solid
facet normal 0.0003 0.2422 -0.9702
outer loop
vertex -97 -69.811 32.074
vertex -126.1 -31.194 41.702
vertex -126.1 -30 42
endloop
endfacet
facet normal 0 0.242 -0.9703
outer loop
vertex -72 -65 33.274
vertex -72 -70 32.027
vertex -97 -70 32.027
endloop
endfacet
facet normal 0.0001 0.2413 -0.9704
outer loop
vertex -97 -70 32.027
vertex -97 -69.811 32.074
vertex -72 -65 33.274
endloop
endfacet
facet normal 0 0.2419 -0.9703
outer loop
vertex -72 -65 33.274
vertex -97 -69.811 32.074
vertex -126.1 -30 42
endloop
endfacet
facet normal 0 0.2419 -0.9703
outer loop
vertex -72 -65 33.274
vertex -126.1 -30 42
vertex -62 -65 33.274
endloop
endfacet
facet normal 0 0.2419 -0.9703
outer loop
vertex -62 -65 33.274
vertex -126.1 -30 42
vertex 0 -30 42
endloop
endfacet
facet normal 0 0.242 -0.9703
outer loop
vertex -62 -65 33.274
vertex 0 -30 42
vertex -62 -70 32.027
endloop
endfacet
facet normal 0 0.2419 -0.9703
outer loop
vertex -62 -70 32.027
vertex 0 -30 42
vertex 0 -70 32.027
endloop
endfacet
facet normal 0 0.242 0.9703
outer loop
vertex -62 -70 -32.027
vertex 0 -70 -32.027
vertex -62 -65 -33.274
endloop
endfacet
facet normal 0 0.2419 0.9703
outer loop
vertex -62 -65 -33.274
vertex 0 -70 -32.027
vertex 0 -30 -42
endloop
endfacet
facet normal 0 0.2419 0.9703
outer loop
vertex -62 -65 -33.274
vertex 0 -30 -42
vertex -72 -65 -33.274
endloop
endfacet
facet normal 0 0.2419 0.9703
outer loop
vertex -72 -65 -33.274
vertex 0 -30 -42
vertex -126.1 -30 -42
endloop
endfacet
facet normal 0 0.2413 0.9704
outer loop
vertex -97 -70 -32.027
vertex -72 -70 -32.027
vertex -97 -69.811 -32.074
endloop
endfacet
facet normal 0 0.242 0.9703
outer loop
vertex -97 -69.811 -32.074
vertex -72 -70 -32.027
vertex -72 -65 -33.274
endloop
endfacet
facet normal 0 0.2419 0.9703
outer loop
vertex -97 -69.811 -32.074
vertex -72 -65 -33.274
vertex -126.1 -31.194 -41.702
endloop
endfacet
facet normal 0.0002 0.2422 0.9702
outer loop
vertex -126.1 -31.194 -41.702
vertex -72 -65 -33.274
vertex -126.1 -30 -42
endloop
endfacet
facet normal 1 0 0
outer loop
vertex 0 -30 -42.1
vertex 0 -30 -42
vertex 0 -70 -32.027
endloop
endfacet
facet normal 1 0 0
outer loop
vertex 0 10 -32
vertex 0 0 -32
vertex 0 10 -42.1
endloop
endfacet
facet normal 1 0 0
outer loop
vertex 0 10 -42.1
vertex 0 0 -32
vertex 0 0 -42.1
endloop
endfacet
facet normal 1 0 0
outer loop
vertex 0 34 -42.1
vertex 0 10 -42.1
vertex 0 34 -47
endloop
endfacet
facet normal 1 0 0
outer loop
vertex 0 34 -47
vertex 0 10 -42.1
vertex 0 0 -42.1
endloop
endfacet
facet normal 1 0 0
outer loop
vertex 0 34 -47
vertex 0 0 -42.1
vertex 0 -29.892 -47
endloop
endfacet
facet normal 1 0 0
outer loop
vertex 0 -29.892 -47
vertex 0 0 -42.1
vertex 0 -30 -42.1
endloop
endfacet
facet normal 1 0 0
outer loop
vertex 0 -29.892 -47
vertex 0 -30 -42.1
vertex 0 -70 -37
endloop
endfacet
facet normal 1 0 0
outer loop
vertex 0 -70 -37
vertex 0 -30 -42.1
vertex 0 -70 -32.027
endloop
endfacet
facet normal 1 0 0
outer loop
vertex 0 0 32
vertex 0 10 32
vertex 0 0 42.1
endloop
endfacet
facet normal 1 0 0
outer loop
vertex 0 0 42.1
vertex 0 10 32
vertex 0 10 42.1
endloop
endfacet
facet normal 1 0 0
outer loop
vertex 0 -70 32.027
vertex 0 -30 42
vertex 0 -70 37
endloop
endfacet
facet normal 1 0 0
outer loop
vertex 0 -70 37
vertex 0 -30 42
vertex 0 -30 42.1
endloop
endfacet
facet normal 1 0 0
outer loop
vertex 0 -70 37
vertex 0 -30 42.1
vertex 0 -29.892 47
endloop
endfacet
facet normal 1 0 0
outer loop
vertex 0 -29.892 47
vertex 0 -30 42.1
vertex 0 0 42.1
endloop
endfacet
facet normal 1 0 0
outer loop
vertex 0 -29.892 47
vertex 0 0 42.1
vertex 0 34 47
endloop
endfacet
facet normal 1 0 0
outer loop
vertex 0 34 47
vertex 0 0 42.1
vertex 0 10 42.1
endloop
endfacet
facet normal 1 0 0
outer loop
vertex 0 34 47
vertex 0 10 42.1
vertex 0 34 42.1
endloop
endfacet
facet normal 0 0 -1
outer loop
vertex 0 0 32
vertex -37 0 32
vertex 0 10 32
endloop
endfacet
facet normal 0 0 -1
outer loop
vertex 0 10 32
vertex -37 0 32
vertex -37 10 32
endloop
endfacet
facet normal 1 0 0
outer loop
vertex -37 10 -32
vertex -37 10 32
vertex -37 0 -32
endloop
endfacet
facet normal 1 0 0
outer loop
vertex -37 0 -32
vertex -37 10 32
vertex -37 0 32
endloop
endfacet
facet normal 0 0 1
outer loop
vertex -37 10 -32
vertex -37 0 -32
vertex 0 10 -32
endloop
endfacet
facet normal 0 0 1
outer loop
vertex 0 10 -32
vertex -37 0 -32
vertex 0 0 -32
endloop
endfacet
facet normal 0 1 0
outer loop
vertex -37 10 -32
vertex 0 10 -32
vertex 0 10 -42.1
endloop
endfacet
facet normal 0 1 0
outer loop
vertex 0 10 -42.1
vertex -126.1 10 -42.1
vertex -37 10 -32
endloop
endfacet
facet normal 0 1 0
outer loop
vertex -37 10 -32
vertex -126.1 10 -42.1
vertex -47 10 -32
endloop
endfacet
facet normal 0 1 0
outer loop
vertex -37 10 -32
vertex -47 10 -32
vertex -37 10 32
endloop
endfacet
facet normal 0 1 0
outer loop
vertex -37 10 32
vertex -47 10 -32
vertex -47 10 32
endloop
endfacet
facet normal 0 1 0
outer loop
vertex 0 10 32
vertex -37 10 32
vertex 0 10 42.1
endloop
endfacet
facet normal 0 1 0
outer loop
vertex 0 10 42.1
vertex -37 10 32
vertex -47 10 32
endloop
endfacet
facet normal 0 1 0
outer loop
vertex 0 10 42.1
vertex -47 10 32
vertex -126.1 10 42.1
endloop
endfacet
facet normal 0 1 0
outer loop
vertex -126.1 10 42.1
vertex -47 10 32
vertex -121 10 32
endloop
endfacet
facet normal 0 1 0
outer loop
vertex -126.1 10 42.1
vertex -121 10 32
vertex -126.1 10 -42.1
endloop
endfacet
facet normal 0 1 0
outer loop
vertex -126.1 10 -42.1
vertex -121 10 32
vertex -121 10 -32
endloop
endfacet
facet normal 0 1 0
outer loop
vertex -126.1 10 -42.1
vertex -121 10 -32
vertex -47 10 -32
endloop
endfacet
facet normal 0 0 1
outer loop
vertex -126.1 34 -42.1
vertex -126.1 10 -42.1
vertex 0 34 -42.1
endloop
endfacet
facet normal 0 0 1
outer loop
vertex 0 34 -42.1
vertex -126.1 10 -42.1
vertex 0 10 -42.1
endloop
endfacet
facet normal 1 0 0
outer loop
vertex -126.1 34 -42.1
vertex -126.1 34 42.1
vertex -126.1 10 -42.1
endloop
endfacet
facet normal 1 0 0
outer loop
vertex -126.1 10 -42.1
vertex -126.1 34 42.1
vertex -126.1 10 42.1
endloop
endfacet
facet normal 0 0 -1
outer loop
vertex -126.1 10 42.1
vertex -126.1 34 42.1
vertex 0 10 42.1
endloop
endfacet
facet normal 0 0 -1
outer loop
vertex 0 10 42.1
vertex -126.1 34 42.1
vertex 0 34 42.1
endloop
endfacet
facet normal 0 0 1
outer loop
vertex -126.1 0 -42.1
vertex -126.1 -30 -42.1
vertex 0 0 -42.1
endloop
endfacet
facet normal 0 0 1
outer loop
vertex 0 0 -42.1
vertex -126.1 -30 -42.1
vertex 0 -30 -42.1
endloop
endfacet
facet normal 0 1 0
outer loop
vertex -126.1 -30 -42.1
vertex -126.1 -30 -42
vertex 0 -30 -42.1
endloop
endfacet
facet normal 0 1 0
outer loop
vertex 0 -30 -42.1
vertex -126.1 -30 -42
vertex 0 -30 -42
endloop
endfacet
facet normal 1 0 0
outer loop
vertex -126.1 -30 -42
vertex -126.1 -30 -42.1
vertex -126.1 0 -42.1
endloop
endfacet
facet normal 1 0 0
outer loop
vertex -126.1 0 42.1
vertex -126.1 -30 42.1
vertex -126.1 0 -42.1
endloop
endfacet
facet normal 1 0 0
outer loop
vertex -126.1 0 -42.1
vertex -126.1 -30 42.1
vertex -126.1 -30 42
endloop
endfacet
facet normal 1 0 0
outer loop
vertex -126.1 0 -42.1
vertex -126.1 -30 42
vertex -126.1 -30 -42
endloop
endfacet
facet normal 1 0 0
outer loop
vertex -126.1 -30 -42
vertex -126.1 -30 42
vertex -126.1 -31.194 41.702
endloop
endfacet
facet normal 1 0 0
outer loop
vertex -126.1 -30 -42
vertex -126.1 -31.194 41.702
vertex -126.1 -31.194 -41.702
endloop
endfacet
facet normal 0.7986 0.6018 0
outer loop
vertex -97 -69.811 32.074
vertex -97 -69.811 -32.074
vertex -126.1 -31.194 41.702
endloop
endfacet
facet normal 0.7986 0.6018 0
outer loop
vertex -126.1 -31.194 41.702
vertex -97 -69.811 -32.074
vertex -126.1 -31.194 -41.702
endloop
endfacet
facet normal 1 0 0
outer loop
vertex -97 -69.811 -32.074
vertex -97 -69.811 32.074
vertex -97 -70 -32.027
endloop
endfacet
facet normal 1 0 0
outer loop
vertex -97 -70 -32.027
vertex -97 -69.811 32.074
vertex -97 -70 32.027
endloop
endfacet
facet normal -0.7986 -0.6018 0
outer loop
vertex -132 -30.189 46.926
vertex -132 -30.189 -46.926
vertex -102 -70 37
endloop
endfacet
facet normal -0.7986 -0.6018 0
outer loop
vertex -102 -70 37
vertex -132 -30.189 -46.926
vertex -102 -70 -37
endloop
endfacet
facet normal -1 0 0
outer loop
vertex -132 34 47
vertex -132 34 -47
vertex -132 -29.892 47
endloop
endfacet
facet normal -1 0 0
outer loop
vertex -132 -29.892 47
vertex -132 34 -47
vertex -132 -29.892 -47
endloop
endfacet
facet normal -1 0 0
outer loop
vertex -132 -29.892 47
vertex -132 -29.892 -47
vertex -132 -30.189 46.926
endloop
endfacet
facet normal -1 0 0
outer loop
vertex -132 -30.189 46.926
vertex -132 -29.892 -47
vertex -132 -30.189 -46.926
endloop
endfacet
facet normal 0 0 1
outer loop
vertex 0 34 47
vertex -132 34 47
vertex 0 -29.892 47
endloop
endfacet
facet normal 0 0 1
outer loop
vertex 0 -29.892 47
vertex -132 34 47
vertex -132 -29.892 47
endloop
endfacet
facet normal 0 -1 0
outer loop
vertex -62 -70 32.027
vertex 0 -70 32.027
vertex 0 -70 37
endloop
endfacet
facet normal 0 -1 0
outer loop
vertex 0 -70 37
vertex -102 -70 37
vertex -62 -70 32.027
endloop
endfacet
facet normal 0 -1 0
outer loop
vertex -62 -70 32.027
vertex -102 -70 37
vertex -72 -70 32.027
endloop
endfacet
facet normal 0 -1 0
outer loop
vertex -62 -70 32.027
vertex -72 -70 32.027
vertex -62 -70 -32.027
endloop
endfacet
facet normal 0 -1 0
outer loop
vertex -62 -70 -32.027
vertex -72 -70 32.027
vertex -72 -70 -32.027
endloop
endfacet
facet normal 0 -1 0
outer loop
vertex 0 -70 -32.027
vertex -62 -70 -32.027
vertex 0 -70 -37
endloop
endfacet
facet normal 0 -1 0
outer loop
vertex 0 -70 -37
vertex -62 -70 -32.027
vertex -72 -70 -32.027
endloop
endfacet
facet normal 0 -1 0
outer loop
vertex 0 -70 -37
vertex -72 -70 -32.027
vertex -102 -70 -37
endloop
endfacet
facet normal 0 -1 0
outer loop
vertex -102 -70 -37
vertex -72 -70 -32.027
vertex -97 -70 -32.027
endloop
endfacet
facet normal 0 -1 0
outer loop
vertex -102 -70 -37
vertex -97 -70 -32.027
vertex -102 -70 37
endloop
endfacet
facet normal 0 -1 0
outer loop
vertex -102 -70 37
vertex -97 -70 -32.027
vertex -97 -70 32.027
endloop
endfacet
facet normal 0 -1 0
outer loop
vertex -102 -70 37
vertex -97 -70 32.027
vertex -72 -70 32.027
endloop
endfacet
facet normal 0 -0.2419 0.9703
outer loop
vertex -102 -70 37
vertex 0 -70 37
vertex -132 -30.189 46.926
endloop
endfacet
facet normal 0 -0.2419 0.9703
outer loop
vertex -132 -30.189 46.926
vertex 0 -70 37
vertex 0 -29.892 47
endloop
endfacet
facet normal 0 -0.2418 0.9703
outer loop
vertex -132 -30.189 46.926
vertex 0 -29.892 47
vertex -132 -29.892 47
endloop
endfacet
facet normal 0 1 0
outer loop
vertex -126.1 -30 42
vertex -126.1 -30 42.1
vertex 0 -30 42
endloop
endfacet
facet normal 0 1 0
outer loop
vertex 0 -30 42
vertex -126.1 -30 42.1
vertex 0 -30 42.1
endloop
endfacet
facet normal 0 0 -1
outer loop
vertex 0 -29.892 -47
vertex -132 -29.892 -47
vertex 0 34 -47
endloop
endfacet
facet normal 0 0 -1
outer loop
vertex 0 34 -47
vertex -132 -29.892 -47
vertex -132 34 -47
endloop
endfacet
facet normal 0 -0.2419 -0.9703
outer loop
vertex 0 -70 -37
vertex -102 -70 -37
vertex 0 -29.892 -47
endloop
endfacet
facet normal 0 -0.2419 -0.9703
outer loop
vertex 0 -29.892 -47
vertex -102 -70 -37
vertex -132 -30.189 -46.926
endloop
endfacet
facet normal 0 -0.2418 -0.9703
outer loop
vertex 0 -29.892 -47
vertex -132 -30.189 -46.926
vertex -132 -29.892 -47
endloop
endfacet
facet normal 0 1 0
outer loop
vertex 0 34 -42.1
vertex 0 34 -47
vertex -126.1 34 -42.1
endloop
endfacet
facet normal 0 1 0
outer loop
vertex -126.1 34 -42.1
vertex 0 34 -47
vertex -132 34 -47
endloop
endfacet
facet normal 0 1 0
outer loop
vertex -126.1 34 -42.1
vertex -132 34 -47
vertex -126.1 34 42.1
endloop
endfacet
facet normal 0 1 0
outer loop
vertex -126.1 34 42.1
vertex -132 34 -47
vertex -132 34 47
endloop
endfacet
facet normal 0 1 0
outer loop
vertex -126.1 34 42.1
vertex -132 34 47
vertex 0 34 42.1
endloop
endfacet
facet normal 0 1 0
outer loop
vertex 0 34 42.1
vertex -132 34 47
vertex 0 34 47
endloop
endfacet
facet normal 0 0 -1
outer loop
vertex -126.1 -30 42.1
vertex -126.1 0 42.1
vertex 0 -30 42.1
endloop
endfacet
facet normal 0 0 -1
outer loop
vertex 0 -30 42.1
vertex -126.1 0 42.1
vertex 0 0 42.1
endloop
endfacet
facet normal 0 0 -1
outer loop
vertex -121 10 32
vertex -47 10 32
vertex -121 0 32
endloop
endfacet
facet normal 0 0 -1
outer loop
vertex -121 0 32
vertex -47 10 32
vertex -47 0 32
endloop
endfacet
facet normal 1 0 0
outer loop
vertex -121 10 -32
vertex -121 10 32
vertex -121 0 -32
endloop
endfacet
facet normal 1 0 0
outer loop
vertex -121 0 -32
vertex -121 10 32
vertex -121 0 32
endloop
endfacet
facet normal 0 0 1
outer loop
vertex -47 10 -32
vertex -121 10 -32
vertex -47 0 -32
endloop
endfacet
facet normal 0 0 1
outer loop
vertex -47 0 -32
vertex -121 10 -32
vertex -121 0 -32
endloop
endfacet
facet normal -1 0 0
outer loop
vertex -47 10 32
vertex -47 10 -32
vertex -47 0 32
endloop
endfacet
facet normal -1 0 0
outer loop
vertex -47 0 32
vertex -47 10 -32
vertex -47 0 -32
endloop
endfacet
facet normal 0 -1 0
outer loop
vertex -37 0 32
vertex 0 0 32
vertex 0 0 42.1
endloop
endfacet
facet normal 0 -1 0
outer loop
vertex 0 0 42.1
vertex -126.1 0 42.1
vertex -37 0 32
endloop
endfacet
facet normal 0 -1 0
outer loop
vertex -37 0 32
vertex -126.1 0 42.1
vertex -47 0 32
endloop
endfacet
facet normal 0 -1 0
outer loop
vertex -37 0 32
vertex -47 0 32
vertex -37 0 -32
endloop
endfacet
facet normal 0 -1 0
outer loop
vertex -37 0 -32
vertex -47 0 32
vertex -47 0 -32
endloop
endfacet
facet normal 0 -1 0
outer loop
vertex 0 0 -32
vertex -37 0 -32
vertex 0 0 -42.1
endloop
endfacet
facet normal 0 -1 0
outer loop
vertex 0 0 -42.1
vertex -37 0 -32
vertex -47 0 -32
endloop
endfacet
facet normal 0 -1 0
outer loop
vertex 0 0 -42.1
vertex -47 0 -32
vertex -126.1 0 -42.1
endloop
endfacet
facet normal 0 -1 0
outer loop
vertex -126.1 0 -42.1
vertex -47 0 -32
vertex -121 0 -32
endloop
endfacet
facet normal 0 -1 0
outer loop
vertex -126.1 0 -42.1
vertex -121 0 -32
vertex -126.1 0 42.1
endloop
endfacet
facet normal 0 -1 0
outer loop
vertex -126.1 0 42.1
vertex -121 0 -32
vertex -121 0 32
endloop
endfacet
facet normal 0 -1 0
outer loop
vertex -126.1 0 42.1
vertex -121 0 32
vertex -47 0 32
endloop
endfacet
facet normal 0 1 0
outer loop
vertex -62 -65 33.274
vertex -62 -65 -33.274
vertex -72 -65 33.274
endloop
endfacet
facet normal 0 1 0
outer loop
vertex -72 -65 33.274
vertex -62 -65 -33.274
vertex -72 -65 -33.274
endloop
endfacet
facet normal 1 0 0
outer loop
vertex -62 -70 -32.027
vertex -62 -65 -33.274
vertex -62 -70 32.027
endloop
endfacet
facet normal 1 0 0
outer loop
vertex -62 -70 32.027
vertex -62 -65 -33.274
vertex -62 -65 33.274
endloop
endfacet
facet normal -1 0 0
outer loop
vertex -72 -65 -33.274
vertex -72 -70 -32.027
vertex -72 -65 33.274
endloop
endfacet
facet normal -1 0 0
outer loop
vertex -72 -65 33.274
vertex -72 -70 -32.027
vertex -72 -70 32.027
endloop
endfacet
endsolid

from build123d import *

# Parameters (mm, degrees)
SKETCH1_W                = 74
SKETCH1_H                = 64
BOSS_EXTRUDE3_DEPTH      = 10
BOSS_EXTRUDE4_DEPTH      = 24
BOSS_EXTRUDE4_DEPTH_BACK = 80
SKETCH3_W                = 264
SKETCH3_H                = 94
SKETCH3_W_2              = 252.2
SKETCH3_H_2              = 84.2
SKETCH4_W                = 264
SKETCH4_H                = 94
SKETCH4_W_2              = 194
SKETCH4_H_2              = 64
BOSS_EXTRUDE5_DEPTH      = 40
CHAMFER4_SIZE            = 39.811344649
CHAMFER4_SIZE_2          = 30
CHAMFER7_SIZE            = 39.811344649
CHAMFER7_SIZE_2          = 30
CHAMFER8_SIZE            = 10
CHAMFER8_SIZE_2          = 40.107809335
CHAMFER9_SIZE            = 40.107809335
CHAMFER9_SIZE_2          = 10
SKETCH7_W                = 10
SKETCH7_H                = 74
BOSS_EXTRUDE6_DEPTH      = 5


with BuildPart() as part:
    # Sketch1 → Boss-Extrude3 (new body)
    with BuildSketch(Plane(origin=(0, 0, 0), x_dir=(1, 0, 0), z_dir=(0, 1, 0))):
        Polygon((-47, 42.1), (-126.1, 42.1), (-126.1, -42.1), (-47, -42.1), (-37, -42.1), (37, -42.1), (47, -42.1), (126.1, -42.1), (126.1, 42.1), (47, 42.1), (37, 42.1), (-37, 42.1), align=None)
        with Locations((-84, 0)):
            Rectangle(SKETCH1_W, SKETCH1_H, mode=Mode.SUBTRACT)
        Rectangle(SKETCH1_W, SKETCH1_H, mode=Mode.SUBTRACT)
        with Locations((84, 0)):
            Rectangle(SKETCH1_W, SKETCH1_H, mode=Mode.SUBTRACT)
    extrude(amount=BOSS_EXTRUDE3_DEPTH)

    # Sketch3 → Boss-Extrude4 (add, two sides: drawn at the far end of the back side and taken through both)
    with BuildSketch(Plane(origin=(0, 10, 0), x_dir=(1, 0, 0), z_dir=(0, 1, 0)).offset(-BOSS_EXTRUDE4_DEPTH_BACK)):
        Rectangle(SKETCH3_W, SKETCH3_H)
        Rectangle(SKETCH3_W_2, SKETCH3_H_2, mode=Mode.SUBTRACT)
    extrude(amount=BOSS_EXTRUDE4_DEPTH + BOSS_EXTRUDE4_DEPTH_BACK)

    # Sketch4 → Boss-Extrude5 (add)
    with BuildSketch(Plane(origin=(0, -70, 0), x_dir=(-1, 0, 0), z_dir=(0, -1, 0))):
        Rectangle(SKETCH4_W, SKETCH4_H)
        Rectangle(SKETCH4_W_2, SKETCH4_H_2, mode=Mode.SUBTRACT)
    extrude(amount=-BOSS_EXTRUDE5_DEPTH)

    # Chamfer4
    # the kernel refuses this chamfer: 39.811344649, 30 mm, written as the material it takes off along each edge
    with BuildSketch(Plane(origin=(-132, -70, 149.735778307), x_dir=(-0.023321052992758384, 0.9997280272590686, 0), z_dir=(0, 0, -1))) as chamfer4_piece_1:
        Polygon((CHAMFER4_SIZE * 0.999728027249, CHAMFER4_SIZE * 0.0233210529925), (-CHAMFER4_SIZE_2 * 0.0233210529928, CHAMFER4_SIZE_2 * 0.999728027259), (0, 0), align=None)
    extrude(amount=299.471556613, mode=Mode.SUBTRACT)
    with BuildSketch(Plane(origin=(-97, -30, 32), x_dir=(-0.9991572559820394, 0.04104604510109794, 0), z_dir=(0, 0, -1))) as chamfer4_piece_2_section:
        Polygon((CHAMFER4_SIZE_2 * 0.999157255982, -CHAMFER4_SIZE_2 * 0.0410460451011), (-CHAMFER4_SIZE * 0.0410460451007, -CHAMFER4_SIZE * 0.999157255972), (0, 0), align=None)
    chamfer4_piece_2 = extrude(amount=64, mode=Mode.PRIVATE)
    chamfer4_piece_2 = split(chamfer4_piece_2, bisect_by=Plane(origin=(-126.1, -43.282043753, 0), z_dir=(1, 0, 0)), keep=Keep.TOP, mode=Mode.PRIVATE)
    add(chamfer4_piece_2, mode=Mode.SUBTRACT)

    # Chamfer7
    # the kernel refuses this chamfer: 39.811344649, 30 mm, written as the material it takes off along each edge
    with BuildSketch(Plane(origin=(132, -70, -149.735778307), x_dir=(0.02332105299275837, 0.9997280272590686, 0), z_dir=(0, 0, 1))) as chamfer7_piece_1:
        Polygon((CHAMFER7_SIZE * 0.999728027249, CHAMFER7_SIZE * 0.0233210529925), (-CHAMFER7_SIZE_2 * 0.0233210529928, CHAMFER7_SIZE_2 * 0.999728027259), (0, 0), align=None)
    extrude(amount=299.471556613, mode=Mode.SUBTRACT)
    with BuildSketch(Plane(origin=(97, -30, -32), x_dir=(0.9991572559820394, 0.04104604510109794, 0), z_dir=(0, 0, 1))) as chamfer7_piece_2_section:
        Polygon((CHAMFER7_SIZE_2 * 0.999157255982, -CHAMFER7_SIZE_2 * 0.0410460451011), (-CHAMFER7_SIZE * 0.0410460451007, -CHAMFER7_SIZE * 0.999157255972), (0, 0), align=None)
    chamfer7_piece_2 = extrude(amount=64, mode=Mode.PRIVATE)
    chamfer7_piece_2 = split(chamfer7_piece_2, bisect_by=Plane(origin=(126.1, -43.282043753, 0), z_dir=(-1, 0, 0)), keep=Keep.TOP, mode=Mode.PRIVATE)
    add(chamfer7_piece_2, mode=Mode.SUBTRACT)

    # Chamfer8
    # the kernel refuses this chamfer: 40.107809335, 10 mm, written as the material it takes off along each edge
    with BuildSketch(Plane(origin=(230.265686152, -30, -32), x_dir=(0, 0.14819517765013807, -0.9889581332499592), z_dir=(-1, 0, 0))) as chamfer8_piece_1_section:
        Polygon((CHAMFER8_SIZE * 0.98895813325, CHAMFER8_SIZE * 0.14819517765), (-CHAMFER8_SIZE_2 * 0.148195177651, CHAMFER8_SIZE_2 * 0.988958133259), (0, 0), align=None)
    chamfer8_piece_1 = extrude(amount=460.531372304, mode=Mode.PRIVATE)
    chamfer8_piece_1 = split(chamfer8_piece_1, bisect_by=Plane(origin=(97, -69.925531208, -32.022723521), z_dir=(-1, 0, 0)), keep=Keep.TOP, mode=Mode.PRIVATE)
    chamfer8_piece_1 = split(chamfer8_piece_1, bisect_by=Plane(origin=(-97, -69.925531208, -32.022723521), z_dir=(1, 0, 0)), keep=Keep.TOP, mode=Mode.PRIVATE)
    add(chamfer8_piece_1, mode=Mode.SUBTRACT)
    with BuildSketch(Plane(origin=(126.1, -30, -32), x_dir=(0, 0.14819517765040952, -0.9889581332499185), z_dir=(-1, 0, 0))) as chamfer8_piece_2_section:
        Polygon((CHAMFER8_SIZE * 0.98895813325, CHAMFER8_SIZE * 0.14819517765), (-CHAMFER8_SIZE_2 * 0.148195177652, CHAMFER8_SIZE_2 * 0.988958133259), (0, 0), align=None)
    chamfer8_piece_2 = extrude(amount=252.2, mode=Mode.PRIVATE)
    chamfer8_piece_2 = split(chamfer8_piece_2, bisect_by=Plane(origin=(115.387923489, -45.409746002, -35.753076102), z_dir=(-0.7986355100471506, 0.6018150231522371, 0)), keep=Keep.TOP, mode=Mode.PRIVATE)
    chamfer8_piece_2 = split(chamfer8_piece_2, bisect_by=Plane(origin=(-37.003214765, -149.429767809, -35.753076102), z_dir=(0.7986355100471506, 0.6018150231522371, 0)), keep=Keep.TOP, mode=Mode.PRIVATE)
    add(chamfer8_piece_2, mode=Mode.SUBTRACT)
    with BuildSketch(Plane(origin=(-206.165686152, -70, -47), x_dir=(0, 0.9999566151296001, -0.009314926653100013), z_dir=(1, 0, 0))) as chamfer8_piece_3:
        Polygon((CHAMFER8_SIZE_2 * 0.999956615139, CHAMFER8_SIZE_2 * 0.00931492665318), (-CHAMFER8_SIZE * 0.0093149266531, CHAMFER8_SIZE * 0.99995661513), (0, 0), align=None)
    extrude(amount=412.331372304, mode=Mode.SUBTRACT)

    # Chamfer9
    # the kernel refuses this chamfer: 40.107809335, 10 mm, written as the material it takes off along each edge
    with BuildSketch(Plane(origin=(-126.1, -30, 32), x_dir=(0, -0.9999566151296001, -0.009314926653099073), z_dir=(1, 0, 0))) as chamfer9_piece_1_section:
        Polygon((CHAMFER9_SIZE * 0.999956615139, -CHAMFER9_SIZE * 0.00931492665318), (-CHAMFER9_SIZE_2 * 0.00931492665339, -CHAMFER9_SIZE_2 * 0.99995661513), (0, 0), align=None)
    chamfer9_piece_1 = extrude(amount=252.2, mode=Mode.PRIVATE)
    chamfer9_piece_1 = split(chamfer9_piece_1, bisect_by=Plane(origin=(37.003214765, -149.429767809, 35.753076102), z_dir=(-0.7986355100471506, 0.6018150231522371, 0)), keep=Keep.TOP, mode=Mode.PRIVATE)
    chamfer9_piece_1 = split(chamfer9_piece_1, bisect_by=Plane(origin=(-115.387923489, -45.409746002, 35.753076102), z_dir=(0.79863551004721, 0.6018150231521583, 0)), keep=Keep.TOP, mode=Mode.PRIVATE)
    add(chamfer9_piece_1, mode=Mode.SUBTRACT)
    with BuildSketch(Plane(origin=(-230.265686152, -30, 32), x_dir=(0, -0.9999566151296001, -0.00931492665310001), z_dir=(1, 0, 0))) as chamfer9_piece_2_section:
        Polygon((CHAMFER9_SIZE * 0.999956615139, -CHAMFER9_SIZE * 0.00931492665318), (-CHAMFER9_SIZE_2 * 0.0093149266531, -CHAMFER9_SIZE_2 * 0.99995661513), (0, 0), align=None)
    chamfer9_piece_2 = extrude(amount=460.531372304, mode=Mode.PRIVATE)
    chamfer9_piece_2 = split(chamfer9_piece_2, bisect_by=Plane(origin=(97, -69.925531208, 32.022723521), z_dir=(-1, 0, 0)), keep=Keep.TOP, mode=Mode.PRIVATE)
    chamfer9_piece_2 = split(chamfer9_piece_2, bisect_by=Plane(origin=(-97, -69.925531208, 32.022723521), z_dir=(1, 0, 0)), keep=Keep.TOP, mode=Mode.PRIVATE)
    add(chamfer9_piece_2, mode=Mode.SUBTRACT)
    with BuildSketch(Plane(origin=(206.165686152, -70, 47), x_dir=(0, -0.1481951776501387, -0.9889581332499591), z_dir=(-1, 0, 0))) as chamfer9_piece_3:
        Polygon((CHAMFER9_SIZE_2 * 0.98895813325, -CHAMFER9_SIZE_2 * 0.14819517765), (-CHAMFER9_SIZE * 0.148195177651, -CHAMFER9_SIZE * 0.988958133259), (0, 0), align=None)
    extrude(amount=412.331372304, mode=Mode.SUBTRACT)

    # Split1
    split(bisect_by=Plane(origin=(0, 0, 0), x_dir=(0, 0, 1), z_dir=(1, 0, 0)), keep=Keep.BOTTOM)

    # Sketch7 → Boss-Extrude6 (add)
    with BuildSketch(Plane(origin=(0, -65, 0), x_dir=(-1, 0, 0), z_dir=(0, -1, 0))):
        with Locations((67, 0)):
            Rectangle(SKETCH7_W, SKETCH7_H)
    extrude(amount=BOSS_EXTRUDE6_DEPTH)


solid = part.part
